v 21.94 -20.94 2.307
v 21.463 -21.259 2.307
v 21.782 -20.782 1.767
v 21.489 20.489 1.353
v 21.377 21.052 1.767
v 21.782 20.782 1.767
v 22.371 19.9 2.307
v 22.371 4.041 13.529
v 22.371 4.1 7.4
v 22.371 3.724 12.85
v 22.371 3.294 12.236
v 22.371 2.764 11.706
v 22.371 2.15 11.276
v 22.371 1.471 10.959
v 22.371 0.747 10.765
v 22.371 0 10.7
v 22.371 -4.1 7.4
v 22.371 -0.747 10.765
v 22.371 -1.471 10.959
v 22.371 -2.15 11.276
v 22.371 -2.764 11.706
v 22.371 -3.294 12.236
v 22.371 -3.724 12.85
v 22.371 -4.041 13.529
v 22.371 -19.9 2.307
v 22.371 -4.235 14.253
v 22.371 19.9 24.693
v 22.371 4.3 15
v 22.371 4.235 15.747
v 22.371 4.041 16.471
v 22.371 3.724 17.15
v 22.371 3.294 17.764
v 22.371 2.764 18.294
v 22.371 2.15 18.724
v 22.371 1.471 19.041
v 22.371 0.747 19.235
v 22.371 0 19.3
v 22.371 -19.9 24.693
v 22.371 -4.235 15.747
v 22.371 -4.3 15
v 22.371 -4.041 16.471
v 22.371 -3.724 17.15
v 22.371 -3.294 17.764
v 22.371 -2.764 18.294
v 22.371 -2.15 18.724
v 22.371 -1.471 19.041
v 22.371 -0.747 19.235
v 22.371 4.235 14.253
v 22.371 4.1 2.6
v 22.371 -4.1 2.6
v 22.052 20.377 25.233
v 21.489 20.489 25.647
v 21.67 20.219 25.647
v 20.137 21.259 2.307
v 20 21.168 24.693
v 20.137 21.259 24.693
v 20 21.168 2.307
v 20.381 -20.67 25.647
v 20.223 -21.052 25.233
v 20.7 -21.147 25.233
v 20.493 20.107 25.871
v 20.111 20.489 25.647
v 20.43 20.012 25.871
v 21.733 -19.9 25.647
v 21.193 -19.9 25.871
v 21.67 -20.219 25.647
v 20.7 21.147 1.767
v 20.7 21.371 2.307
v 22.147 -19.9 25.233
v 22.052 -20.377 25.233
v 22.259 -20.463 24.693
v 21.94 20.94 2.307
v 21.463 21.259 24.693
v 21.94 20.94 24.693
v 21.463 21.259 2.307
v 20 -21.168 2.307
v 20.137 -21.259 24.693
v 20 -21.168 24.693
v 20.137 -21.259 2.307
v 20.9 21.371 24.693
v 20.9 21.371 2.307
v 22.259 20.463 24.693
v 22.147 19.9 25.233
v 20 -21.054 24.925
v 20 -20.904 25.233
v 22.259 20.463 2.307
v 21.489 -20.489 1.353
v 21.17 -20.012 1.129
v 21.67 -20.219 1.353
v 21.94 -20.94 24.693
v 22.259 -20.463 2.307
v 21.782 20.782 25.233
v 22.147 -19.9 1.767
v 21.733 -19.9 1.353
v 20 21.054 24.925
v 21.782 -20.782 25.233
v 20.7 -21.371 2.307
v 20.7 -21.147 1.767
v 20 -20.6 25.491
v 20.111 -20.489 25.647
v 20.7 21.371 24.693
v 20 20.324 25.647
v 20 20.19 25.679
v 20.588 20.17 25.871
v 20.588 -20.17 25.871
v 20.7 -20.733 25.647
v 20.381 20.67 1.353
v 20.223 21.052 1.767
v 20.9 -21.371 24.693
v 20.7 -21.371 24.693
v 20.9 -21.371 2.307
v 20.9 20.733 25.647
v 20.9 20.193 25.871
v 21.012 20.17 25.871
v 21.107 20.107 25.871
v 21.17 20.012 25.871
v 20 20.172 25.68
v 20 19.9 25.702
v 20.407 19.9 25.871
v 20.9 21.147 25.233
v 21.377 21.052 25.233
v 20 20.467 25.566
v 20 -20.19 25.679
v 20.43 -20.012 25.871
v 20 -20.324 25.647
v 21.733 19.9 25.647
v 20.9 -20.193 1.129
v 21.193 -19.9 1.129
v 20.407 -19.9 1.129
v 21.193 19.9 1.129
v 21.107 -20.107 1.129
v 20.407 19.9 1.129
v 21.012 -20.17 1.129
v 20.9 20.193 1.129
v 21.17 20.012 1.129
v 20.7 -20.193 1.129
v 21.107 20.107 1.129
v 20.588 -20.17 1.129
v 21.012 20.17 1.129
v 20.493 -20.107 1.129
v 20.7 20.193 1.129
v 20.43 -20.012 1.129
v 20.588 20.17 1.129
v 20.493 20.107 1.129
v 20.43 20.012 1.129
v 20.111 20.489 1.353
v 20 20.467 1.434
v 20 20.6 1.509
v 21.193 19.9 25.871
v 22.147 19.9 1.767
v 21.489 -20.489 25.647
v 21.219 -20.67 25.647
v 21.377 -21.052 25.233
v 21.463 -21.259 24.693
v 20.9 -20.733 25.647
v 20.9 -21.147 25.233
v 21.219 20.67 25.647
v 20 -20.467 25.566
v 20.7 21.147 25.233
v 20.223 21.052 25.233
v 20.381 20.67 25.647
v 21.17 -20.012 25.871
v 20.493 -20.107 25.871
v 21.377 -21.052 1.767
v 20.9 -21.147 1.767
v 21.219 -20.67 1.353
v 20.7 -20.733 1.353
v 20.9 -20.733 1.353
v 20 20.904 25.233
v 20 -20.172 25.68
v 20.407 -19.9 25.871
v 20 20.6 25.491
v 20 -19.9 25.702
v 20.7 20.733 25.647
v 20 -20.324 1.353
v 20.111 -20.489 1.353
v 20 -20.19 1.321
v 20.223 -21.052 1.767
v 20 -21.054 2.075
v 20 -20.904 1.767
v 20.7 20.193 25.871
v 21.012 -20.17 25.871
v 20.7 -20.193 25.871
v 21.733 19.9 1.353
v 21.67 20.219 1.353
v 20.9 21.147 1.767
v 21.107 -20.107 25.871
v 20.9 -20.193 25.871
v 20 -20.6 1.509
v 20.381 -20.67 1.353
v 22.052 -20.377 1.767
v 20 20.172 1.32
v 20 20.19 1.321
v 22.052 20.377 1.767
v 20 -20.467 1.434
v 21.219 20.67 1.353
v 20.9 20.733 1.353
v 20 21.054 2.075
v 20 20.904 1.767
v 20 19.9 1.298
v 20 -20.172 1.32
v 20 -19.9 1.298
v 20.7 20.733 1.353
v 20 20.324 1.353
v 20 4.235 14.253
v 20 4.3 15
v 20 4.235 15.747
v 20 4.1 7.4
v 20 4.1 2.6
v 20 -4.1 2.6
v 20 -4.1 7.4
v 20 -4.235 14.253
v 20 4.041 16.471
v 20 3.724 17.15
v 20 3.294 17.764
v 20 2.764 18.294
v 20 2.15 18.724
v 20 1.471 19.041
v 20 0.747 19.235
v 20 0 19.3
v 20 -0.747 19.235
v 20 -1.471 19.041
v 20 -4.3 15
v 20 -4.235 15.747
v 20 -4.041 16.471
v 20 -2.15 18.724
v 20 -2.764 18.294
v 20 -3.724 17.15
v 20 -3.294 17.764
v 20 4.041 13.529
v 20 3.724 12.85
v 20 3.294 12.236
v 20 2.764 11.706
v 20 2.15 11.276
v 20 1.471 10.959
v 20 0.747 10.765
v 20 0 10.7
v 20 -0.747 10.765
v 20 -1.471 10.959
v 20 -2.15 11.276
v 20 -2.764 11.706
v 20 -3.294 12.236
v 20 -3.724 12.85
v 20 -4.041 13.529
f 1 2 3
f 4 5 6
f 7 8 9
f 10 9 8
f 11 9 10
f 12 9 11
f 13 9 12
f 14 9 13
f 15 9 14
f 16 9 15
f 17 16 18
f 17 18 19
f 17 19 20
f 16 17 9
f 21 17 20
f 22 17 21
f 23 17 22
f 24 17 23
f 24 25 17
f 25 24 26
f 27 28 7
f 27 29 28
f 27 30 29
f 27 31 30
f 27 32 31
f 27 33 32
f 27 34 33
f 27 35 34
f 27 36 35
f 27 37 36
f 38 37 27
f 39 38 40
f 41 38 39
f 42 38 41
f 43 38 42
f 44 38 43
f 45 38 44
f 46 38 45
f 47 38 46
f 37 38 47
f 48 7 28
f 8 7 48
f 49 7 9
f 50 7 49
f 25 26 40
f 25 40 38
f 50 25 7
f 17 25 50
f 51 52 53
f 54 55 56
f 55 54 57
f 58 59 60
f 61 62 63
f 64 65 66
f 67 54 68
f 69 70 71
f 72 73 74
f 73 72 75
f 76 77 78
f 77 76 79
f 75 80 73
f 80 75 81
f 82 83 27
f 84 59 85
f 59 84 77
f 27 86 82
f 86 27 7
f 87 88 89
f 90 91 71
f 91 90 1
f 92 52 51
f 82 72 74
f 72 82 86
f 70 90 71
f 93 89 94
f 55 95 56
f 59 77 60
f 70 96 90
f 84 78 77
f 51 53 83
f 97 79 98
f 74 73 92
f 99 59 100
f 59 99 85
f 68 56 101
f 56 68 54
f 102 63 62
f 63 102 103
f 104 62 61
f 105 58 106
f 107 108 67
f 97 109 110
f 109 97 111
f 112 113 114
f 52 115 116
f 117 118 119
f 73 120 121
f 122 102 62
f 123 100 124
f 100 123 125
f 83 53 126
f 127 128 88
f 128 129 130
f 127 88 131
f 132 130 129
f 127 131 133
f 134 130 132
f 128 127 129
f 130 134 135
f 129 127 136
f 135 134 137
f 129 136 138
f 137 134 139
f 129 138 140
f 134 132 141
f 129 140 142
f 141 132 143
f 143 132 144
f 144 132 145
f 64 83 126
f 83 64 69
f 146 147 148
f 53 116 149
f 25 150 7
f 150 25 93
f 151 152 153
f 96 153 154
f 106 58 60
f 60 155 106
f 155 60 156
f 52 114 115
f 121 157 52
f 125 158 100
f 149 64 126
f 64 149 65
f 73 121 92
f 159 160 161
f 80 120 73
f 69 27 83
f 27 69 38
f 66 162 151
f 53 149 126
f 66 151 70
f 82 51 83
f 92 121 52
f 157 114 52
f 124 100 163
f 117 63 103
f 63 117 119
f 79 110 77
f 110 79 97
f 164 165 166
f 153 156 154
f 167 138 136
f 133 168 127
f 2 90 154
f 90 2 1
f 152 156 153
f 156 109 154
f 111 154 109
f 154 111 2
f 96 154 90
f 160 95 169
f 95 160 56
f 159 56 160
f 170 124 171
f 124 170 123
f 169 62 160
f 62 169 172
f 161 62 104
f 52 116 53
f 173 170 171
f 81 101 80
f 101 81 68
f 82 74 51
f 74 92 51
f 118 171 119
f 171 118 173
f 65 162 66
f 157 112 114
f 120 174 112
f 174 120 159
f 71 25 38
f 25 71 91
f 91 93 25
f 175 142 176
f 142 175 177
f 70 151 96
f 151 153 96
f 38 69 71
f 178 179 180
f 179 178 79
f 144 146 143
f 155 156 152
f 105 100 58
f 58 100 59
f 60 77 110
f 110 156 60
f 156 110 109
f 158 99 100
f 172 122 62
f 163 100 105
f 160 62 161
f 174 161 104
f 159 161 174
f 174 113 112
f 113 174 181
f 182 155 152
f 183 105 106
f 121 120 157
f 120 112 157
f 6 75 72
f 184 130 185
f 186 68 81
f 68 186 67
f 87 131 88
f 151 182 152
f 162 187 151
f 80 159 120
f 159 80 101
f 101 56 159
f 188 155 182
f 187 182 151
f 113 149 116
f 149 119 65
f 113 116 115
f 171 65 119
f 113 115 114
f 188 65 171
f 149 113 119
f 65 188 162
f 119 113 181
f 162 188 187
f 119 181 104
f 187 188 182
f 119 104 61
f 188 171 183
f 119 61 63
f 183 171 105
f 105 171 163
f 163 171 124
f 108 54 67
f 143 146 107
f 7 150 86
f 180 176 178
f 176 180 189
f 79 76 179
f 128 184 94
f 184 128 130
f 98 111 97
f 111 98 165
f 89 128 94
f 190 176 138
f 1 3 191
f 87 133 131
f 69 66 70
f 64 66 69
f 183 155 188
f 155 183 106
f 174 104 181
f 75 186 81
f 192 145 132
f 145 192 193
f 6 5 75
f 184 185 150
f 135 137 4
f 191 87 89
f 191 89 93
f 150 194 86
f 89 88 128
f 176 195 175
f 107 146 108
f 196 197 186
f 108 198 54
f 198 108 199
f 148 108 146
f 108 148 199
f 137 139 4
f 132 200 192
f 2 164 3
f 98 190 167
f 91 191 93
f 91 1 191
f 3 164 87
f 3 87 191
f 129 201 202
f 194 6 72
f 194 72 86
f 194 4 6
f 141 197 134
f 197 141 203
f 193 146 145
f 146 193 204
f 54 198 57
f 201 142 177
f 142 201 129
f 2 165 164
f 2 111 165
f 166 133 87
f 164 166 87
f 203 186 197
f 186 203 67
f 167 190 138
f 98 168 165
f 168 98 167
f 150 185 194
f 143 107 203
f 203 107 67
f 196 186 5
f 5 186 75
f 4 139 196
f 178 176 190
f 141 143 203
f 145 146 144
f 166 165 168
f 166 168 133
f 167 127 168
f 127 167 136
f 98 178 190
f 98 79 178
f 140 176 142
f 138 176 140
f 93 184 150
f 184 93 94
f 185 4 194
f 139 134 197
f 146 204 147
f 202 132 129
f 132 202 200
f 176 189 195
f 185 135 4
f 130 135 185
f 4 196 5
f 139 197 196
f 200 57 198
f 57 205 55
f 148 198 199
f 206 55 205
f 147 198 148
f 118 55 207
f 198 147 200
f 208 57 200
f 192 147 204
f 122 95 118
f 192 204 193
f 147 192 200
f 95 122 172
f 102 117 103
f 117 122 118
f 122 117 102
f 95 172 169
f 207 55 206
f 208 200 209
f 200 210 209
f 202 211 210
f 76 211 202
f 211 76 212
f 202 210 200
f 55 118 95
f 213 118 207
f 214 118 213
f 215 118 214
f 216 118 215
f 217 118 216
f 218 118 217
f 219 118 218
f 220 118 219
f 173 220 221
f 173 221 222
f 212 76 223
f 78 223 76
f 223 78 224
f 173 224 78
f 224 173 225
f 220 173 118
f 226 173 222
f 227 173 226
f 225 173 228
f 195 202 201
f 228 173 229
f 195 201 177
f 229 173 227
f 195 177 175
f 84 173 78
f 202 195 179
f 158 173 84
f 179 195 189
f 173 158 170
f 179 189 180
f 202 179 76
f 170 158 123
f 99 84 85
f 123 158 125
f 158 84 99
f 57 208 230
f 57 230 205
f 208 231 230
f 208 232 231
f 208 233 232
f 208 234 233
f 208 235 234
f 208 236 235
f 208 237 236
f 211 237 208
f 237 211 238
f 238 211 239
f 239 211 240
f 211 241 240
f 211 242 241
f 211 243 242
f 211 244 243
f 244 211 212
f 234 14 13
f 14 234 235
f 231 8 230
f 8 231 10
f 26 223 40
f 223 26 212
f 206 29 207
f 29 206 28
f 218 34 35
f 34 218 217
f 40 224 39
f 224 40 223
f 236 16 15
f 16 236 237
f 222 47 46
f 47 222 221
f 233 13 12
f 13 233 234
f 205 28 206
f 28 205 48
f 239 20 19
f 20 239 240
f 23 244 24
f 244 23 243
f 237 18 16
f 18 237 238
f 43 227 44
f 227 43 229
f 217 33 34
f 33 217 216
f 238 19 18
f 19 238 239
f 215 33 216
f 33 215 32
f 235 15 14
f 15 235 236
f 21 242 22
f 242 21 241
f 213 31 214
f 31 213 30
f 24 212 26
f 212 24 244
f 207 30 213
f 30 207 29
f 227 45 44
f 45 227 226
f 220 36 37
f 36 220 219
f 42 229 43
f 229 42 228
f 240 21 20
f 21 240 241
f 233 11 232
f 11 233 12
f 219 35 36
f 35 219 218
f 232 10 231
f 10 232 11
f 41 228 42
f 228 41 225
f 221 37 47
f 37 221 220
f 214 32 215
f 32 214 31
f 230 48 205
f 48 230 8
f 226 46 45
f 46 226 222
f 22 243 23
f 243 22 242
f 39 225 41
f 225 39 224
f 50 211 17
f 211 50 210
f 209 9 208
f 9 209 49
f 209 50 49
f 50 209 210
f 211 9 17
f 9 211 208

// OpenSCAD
// file: ../rnv1_params.scad
// RNV1 (Robotic Neural Vector 1) - Master Parametric Mechanical Specification
// Units: millimeters (mm)
// Coordinate Frame: +X Forward, +Y Left, +Z Up (Standing Neutral Pose, Floor = Z=0)

$fn = 36;

// --- FDM 3D Print Engineering Tolerances (0.4mm nozzle, PETG / PLA+) ---
WALL_T       = 2.0;    // Primary structural wall thickness (>= 1.6mm requirement)
RIB_T        = 1.8;    // Structural stiffening rib thickness
CLEARANCE    = 0.25;   // Standard FDM press/slip fit clearance
M2_PILOT_D   = 1.75;   // M2 self-tapping pilot hole diameter
M2_CLEAR_D   = 2.3;    // M2 through clearance hole diameter
PIVOT_BOSS_D = 4.0;    // Dual-shear opposing coaxial pivot pin diameter

// --- MG90S Metal-Gear Micro Servo Envelope (TowerPro/Generic standard) ---
MG90S_L      = 22.8;   // Body length along flange axis
MG90S_W      = 12.2;   // Body width
MG90S_H      = 28.5;   // Total housing height (bottom to top gear dome)
MG90S_FLANGE_L = 32.2; // Mounting ear span
MG90S_HOLE_DX  = 27.6; // Mounting hole center-to-center
MG90S_SHAFT_OFF = 5.9; // Output shaft offset from end of 22.8mm body

// --- SG90 9g Micro Servo Envelope ---
SG90_L       = 22.5;
SG90_W       = 12.0;
SG90_H       = 22.5;

// --- Master Kinematic Skeleton Coordinates (mm, Z from Floor = 0) ---
SOLE_PAD_H   = 2.0;    // 2mm silicone anti-slip pad (1mm recessed)
FOOT_L       = 72.0;   // X: -32mm heel to +40mm toe
FOOT_HEEL_X  = -32.0;
FOOT_TOE_X   = 40.0;
FOOT_W       = 46.0;   // Y width per foot
FOOT_PLATE_H = 6.5;    // Rigid foot sole plate thickness

FOOT_Y_CTR   = 26.0;   // Left=+26mm, Right=-26mm (6mm gap between inner edges!)
HIP_ROLL_Y   = 23.0;   // Left=+23mm, Right=-23mm

Z_ANKLE_ROLL = 18.0;   // Ankle roll axis height
Z_KNEE_PITCH = 62.0;   // Knee pitch axis height  (L_shin = 44.0mm)
Z_HIP_PITCH  = 106.0;  // Hip pitch axis height   (L_thigh = 44.0mm)
Z_HIP_ROLL   = 124.0;  // Hip roll axis height    (dZ = 18.0mm)

L_SHIN       = Z_KNEE_PITCH - Z_ANKLE_ROLL; // 44.0 mm
L_THIGH      = Z_HIP_PITCH - Z_KNEE_PITCH;  // 44.0 mm
L_HIP_CLEVIS = Z_HIP_ROLL - Z_HIP_PITCH;    // 18.0 mm

// --- Torso & Pelvis Envelope ---
TORSO_Z_BOT  = 116.0;
TORSO_Z_TOP  = 184.0;
TORSO_H      = TORSO_Z_TOP - TORSO_Z_BOT;   // 68.0 mm
TORSO_W      = 80.0;   // Y: -40 to +40mm
TORSO_D      = 54.0;   // X: -27 to +27mm

// --- Arms ---
SHOULDER_Y   = 46.0;   // Left=+46mm, Right=-46mm
SHOULDER_Z   = 170.0;
ARM_LEN      = 72.0;   // Shoulder to palm tip

// --- 2-DOF Active Spatial Head ---
Z_HEAD_YAW   = 188.0;  // Pan axis Z
Z_HEAD_PITCH = 204.0;  // Tilt axis Z
HEAD_W       = 58.0;   // Y width
HEAD_D       = 44.0;   // X depth
HEAD_H       = 42.0;   // Z height (Z = 196..238mm -> Total Robot Height = 238mm)
HEAD_Z_CTR   = 217.0;

// --- Utility Rounded Box Module ---
module rbox(size, r=2.0, center=true) {
    sx = size[0]; sy = size[1]; sz = size[2];
    rc = min(r, sx/2 - 0.1, sy/2 - 0.1, sz/2 - 0.1);
    translate(center ? [0,0,0] : [sx/2, sy/2, sz/2])
    hull() {
        for (dx = [-sx/2 + rc, sx/2 - rc])
        for (dy = [-sy/2 + rc, sy/2 - rc])
        for (dz = [-sz/2 + rc, sz/2 - rc])
            translate([dx, dy, dz]) sphere(r=rc, $fn=16);
    }
}

module rbox_xy(size, r=2.5, center=true) {
    sx = size[0]; sy = size[1]; sz = size[2];
    rc = min(r, sx/2 - 0.1, sy/2 - 0.1);
    translate(center ? [0,0,0] : [sx/2, sy/2, sz/2])
    linear_extrude(height=sz, center=true)
    offset(r=rc) offset(r=-rc)
        square([sx, sy], center=true);
}
// main file
// RNV1 Part: Smoked Optical Visor Bezel Plate (Snaps into head_shell front recess)
// Local Origin: Same as head_shell (Head Pitch axis at Z=0 [Global Z=204mm])
include <../rnv1_params.scad>

module head_visor() {
    difference() {
        // Curved sleek visor faceplate
        translate([HEAD_D/2 - 1.2, 0, 13.5])
            rbox([3.2, HEAD_W - 15.2, 24.8], r=5.4, center=true);

        // Trim back half flush
        translate([HEAD_D/2 - 4.0, 0, 13.5])
            cube([4.0, HEAD_W, 30.0], center=true);

        // Precision OV5640 / OV3660 Camera Lens Window
        translate([HEAD_D/2, 0, 15.0])
            rotate([0, 90, 0])
                cylinder(d=8.6, h=10.0, center=true);

        // Precision VL53L0X Laser ToF Emitter/Receiver Window
        translate([HEAD_D/2, 0, 5.0])
            rbox_xy([10.0, 8.2, 4.8], r=1.0, center=true);
    }
}

head_visor();
